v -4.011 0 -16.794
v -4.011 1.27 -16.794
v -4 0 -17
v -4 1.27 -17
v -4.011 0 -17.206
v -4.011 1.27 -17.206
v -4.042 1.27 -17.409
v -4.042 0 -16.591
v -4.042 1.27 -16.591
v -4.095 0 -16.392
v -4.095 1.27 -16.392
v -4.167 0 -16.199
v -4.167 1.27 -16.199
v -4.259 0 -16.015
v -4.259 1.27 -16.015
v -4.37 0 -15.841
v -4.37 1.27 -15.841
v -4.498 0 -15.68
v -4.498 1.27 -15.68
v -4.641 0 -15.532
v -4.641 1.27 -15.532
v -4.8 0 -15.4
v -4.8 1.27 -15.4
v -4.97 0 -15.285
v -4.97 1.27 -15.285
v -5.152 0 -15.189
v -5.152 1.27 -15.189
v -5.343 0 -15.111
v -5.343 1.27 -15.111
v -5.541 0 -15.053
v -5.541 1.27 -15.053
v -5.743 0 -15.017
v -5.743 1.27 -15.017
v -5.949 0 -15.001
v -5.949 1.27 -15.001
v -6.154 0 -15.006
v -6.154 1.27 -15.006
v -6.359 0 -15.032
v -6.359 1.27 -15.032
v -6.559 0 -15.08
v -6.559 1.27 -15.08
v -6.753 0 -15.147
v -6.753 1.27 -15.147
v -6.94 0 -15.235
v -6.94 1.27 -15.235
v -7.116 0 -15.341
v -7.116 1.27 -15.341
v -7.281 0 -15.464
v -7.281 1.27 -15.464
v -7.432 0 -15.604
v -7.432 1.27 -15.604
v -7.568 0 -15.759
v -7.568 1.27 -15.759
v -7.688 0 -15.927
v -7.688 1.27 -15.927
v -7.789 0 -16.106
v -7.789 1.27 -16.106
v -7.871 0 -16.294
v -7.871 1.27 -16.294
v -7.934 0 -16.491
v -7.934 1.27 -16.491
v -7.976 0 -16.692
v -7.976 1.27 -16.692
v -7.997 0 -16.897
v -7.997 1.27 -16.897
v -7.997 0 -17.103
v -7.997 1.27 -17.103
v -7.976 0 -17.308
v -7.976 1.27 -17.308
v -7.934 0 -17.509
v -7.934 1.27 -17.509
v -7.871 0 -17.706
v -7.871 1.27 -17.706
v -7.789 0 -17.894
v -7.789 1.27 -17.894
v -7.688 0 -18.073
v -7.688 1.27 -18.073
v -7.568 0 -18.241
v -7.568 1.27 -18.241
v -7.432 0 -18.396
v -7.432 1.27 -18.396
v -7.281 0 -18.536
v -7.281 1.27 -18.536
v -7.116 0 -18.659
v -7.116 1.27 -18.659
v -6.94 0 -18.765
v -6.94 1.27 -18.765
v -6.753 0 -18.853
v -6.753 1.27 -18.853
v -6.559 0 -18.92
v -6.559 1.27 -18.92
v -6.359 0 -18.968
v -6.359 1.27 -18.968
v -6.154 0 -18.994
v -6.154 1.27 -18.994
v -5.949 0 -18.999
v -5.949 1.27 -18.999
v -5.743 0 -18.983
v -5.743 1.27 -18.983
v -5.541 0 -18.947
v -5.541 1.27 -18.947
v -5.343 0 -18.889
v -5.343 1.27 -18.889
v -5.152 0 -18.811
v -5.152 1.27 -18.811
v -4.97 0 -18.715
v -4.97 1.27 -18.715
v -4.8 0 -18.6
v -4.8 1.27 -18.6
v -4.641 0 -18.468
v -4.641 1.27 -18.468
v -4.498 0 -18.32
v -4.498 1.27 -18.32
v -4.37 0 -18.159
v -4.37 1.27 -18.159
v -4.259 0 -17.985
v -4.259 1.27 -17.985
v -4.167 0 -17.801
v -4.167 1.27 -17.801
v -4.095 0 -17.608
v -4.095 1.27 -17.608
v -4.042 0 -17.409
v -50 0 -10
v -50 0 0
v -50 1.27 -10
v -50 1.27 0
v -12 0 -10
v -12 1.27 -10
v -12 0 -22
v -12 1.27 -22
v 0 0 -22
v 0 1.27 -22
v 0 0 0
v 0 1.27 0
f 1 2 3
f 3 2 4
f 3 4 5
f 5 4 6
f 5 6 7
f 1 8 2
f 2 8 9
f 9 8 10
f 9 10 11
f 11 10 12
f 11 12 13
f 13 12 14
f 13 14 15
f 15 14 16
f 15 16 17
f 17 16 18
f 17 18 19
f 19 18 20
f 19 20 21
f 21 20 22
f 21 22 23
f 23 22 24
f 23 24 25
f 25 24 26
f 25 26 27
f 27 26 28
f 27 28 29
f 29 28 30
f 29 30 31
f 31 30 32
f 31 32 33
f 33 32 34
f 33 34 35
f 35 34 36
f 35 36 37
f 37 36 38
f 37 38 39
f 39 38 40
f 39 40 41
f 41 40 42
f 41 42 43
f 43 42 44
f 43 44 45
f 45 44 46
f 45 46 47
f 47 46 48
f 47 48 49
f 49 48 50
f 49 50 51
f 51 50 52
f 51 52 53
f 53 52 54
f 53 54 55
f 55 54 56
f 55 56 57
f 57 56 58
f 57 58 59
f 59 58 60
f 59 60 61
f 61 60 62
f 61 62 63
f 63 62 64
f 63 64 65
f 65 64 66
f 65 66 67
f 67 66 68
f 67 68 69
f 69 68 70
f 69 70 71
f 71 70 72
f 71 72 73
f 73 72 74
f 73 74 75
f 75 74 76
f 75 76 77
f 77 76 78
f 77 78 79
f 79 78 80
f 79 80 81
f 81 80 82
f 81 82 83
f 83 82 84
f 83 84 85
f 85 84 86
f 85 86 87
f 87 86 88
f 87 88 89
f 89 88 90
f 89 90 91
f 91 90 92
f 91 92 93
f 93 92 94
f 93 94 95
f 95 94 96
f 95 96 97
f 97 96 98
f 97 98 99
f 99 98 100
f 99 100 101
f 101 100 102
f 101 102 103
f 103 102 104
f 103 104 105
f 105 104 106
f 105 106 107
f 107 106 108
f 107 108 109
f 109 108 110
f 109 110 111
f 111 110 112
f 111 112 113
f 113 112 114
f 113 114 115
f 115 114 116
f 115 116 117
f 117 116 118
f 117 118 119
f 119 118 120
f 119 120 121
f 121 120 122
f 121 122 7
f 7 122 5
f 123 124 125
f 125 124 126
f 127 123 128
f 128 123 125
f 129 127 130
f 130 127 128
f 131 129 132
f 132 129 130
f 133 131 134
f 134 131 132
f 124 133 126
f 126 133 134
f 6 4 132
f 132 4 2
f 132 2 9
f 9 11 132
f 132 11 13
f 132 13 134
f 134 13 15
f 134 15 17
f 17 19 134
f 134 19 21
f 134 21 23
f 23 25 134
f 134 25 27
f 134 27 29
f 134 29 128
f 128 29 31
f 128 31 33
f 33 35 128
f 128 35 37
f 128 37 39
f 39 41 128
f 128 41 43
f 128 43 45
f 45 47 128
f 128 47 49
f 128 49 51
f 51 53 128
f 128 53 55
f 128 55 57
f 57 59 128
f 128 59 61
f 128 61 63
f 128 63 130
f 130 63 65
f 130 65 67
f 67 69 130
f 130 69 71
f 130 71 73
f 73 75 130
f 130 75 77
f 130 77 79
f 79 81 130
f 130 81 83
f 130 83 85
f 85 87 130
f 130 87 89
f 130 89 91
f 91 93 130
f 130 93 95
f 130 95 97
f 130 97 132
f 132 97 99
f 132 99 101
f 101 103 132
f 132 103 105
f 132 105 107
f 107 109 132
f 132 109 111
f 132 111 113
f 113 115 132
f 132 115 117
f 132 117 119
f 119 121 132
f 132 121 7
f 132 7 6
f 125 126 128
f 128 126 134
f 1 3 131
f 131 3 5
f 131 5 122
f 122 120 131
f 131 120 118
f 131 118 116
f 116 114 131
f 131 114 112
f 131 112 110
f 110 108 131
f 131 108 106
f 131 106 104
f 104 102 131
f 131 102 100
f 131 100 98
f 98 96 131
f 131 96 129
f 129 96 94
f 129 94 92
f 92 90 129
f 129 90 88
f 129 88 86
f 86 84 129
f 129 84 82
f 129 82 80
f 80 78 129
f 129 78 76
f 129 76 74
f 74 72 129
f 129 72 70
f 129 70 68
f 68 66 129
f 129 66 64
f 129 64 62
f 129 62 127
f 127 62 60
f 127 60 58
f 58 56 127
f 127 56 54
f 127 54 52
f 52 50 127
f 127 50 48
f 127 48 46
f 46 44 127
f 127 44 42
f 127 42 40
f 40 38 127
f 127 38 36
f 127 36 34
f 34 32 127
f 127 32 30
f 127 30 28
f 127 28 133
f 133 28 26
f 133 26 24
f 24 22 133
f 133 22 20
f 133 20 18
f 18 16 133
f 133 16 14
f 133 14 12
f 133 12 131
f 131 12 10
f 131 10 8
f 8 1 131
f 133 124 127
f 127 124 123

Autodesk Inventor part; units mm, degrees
ref_plane "YZ Plane" through (0, 0, 0) normal (1, 0, 0) x (0, 1, 0)
ref_plane "XZ Plane" through (0, 0, 0) normal (0, 1, 0) x (-1, 0, 0)
ref_plane "XY Plane" through (0, 0, 0) normal (0, 0, 1) x (1, 0, 0)
sketch "Sketch1" plane through (0, 0, 0) normal (0, 1, 0) x (-1, 0, 0)
  line L0 (50, 0) -> (0, 0)
  line L1 (50, -10) -> (50, 0)
  line L2 (12, -10) -> (50, -10)
  line L3 (12, -22) -> (12, -10)
  line L4 (0, -22) -> (12, -22)
  line L5 (0, 0) -> (0, -22)
extrude "Extrusion1" add sketch "Sketch1" along normal blind 1.27
sketch "Sketch2" plane through (0, 1.27, 0) normal (0, 1, 0) x (1, 0, 0)
  point P0 (-6, 17)
hole "Hole1" at (-6, 1.27, -17) direction (0, -1, 0) diameter 4 depth 1.27
properties part number "Y-axis X-axis Flag" material "Nylon 6/6"
